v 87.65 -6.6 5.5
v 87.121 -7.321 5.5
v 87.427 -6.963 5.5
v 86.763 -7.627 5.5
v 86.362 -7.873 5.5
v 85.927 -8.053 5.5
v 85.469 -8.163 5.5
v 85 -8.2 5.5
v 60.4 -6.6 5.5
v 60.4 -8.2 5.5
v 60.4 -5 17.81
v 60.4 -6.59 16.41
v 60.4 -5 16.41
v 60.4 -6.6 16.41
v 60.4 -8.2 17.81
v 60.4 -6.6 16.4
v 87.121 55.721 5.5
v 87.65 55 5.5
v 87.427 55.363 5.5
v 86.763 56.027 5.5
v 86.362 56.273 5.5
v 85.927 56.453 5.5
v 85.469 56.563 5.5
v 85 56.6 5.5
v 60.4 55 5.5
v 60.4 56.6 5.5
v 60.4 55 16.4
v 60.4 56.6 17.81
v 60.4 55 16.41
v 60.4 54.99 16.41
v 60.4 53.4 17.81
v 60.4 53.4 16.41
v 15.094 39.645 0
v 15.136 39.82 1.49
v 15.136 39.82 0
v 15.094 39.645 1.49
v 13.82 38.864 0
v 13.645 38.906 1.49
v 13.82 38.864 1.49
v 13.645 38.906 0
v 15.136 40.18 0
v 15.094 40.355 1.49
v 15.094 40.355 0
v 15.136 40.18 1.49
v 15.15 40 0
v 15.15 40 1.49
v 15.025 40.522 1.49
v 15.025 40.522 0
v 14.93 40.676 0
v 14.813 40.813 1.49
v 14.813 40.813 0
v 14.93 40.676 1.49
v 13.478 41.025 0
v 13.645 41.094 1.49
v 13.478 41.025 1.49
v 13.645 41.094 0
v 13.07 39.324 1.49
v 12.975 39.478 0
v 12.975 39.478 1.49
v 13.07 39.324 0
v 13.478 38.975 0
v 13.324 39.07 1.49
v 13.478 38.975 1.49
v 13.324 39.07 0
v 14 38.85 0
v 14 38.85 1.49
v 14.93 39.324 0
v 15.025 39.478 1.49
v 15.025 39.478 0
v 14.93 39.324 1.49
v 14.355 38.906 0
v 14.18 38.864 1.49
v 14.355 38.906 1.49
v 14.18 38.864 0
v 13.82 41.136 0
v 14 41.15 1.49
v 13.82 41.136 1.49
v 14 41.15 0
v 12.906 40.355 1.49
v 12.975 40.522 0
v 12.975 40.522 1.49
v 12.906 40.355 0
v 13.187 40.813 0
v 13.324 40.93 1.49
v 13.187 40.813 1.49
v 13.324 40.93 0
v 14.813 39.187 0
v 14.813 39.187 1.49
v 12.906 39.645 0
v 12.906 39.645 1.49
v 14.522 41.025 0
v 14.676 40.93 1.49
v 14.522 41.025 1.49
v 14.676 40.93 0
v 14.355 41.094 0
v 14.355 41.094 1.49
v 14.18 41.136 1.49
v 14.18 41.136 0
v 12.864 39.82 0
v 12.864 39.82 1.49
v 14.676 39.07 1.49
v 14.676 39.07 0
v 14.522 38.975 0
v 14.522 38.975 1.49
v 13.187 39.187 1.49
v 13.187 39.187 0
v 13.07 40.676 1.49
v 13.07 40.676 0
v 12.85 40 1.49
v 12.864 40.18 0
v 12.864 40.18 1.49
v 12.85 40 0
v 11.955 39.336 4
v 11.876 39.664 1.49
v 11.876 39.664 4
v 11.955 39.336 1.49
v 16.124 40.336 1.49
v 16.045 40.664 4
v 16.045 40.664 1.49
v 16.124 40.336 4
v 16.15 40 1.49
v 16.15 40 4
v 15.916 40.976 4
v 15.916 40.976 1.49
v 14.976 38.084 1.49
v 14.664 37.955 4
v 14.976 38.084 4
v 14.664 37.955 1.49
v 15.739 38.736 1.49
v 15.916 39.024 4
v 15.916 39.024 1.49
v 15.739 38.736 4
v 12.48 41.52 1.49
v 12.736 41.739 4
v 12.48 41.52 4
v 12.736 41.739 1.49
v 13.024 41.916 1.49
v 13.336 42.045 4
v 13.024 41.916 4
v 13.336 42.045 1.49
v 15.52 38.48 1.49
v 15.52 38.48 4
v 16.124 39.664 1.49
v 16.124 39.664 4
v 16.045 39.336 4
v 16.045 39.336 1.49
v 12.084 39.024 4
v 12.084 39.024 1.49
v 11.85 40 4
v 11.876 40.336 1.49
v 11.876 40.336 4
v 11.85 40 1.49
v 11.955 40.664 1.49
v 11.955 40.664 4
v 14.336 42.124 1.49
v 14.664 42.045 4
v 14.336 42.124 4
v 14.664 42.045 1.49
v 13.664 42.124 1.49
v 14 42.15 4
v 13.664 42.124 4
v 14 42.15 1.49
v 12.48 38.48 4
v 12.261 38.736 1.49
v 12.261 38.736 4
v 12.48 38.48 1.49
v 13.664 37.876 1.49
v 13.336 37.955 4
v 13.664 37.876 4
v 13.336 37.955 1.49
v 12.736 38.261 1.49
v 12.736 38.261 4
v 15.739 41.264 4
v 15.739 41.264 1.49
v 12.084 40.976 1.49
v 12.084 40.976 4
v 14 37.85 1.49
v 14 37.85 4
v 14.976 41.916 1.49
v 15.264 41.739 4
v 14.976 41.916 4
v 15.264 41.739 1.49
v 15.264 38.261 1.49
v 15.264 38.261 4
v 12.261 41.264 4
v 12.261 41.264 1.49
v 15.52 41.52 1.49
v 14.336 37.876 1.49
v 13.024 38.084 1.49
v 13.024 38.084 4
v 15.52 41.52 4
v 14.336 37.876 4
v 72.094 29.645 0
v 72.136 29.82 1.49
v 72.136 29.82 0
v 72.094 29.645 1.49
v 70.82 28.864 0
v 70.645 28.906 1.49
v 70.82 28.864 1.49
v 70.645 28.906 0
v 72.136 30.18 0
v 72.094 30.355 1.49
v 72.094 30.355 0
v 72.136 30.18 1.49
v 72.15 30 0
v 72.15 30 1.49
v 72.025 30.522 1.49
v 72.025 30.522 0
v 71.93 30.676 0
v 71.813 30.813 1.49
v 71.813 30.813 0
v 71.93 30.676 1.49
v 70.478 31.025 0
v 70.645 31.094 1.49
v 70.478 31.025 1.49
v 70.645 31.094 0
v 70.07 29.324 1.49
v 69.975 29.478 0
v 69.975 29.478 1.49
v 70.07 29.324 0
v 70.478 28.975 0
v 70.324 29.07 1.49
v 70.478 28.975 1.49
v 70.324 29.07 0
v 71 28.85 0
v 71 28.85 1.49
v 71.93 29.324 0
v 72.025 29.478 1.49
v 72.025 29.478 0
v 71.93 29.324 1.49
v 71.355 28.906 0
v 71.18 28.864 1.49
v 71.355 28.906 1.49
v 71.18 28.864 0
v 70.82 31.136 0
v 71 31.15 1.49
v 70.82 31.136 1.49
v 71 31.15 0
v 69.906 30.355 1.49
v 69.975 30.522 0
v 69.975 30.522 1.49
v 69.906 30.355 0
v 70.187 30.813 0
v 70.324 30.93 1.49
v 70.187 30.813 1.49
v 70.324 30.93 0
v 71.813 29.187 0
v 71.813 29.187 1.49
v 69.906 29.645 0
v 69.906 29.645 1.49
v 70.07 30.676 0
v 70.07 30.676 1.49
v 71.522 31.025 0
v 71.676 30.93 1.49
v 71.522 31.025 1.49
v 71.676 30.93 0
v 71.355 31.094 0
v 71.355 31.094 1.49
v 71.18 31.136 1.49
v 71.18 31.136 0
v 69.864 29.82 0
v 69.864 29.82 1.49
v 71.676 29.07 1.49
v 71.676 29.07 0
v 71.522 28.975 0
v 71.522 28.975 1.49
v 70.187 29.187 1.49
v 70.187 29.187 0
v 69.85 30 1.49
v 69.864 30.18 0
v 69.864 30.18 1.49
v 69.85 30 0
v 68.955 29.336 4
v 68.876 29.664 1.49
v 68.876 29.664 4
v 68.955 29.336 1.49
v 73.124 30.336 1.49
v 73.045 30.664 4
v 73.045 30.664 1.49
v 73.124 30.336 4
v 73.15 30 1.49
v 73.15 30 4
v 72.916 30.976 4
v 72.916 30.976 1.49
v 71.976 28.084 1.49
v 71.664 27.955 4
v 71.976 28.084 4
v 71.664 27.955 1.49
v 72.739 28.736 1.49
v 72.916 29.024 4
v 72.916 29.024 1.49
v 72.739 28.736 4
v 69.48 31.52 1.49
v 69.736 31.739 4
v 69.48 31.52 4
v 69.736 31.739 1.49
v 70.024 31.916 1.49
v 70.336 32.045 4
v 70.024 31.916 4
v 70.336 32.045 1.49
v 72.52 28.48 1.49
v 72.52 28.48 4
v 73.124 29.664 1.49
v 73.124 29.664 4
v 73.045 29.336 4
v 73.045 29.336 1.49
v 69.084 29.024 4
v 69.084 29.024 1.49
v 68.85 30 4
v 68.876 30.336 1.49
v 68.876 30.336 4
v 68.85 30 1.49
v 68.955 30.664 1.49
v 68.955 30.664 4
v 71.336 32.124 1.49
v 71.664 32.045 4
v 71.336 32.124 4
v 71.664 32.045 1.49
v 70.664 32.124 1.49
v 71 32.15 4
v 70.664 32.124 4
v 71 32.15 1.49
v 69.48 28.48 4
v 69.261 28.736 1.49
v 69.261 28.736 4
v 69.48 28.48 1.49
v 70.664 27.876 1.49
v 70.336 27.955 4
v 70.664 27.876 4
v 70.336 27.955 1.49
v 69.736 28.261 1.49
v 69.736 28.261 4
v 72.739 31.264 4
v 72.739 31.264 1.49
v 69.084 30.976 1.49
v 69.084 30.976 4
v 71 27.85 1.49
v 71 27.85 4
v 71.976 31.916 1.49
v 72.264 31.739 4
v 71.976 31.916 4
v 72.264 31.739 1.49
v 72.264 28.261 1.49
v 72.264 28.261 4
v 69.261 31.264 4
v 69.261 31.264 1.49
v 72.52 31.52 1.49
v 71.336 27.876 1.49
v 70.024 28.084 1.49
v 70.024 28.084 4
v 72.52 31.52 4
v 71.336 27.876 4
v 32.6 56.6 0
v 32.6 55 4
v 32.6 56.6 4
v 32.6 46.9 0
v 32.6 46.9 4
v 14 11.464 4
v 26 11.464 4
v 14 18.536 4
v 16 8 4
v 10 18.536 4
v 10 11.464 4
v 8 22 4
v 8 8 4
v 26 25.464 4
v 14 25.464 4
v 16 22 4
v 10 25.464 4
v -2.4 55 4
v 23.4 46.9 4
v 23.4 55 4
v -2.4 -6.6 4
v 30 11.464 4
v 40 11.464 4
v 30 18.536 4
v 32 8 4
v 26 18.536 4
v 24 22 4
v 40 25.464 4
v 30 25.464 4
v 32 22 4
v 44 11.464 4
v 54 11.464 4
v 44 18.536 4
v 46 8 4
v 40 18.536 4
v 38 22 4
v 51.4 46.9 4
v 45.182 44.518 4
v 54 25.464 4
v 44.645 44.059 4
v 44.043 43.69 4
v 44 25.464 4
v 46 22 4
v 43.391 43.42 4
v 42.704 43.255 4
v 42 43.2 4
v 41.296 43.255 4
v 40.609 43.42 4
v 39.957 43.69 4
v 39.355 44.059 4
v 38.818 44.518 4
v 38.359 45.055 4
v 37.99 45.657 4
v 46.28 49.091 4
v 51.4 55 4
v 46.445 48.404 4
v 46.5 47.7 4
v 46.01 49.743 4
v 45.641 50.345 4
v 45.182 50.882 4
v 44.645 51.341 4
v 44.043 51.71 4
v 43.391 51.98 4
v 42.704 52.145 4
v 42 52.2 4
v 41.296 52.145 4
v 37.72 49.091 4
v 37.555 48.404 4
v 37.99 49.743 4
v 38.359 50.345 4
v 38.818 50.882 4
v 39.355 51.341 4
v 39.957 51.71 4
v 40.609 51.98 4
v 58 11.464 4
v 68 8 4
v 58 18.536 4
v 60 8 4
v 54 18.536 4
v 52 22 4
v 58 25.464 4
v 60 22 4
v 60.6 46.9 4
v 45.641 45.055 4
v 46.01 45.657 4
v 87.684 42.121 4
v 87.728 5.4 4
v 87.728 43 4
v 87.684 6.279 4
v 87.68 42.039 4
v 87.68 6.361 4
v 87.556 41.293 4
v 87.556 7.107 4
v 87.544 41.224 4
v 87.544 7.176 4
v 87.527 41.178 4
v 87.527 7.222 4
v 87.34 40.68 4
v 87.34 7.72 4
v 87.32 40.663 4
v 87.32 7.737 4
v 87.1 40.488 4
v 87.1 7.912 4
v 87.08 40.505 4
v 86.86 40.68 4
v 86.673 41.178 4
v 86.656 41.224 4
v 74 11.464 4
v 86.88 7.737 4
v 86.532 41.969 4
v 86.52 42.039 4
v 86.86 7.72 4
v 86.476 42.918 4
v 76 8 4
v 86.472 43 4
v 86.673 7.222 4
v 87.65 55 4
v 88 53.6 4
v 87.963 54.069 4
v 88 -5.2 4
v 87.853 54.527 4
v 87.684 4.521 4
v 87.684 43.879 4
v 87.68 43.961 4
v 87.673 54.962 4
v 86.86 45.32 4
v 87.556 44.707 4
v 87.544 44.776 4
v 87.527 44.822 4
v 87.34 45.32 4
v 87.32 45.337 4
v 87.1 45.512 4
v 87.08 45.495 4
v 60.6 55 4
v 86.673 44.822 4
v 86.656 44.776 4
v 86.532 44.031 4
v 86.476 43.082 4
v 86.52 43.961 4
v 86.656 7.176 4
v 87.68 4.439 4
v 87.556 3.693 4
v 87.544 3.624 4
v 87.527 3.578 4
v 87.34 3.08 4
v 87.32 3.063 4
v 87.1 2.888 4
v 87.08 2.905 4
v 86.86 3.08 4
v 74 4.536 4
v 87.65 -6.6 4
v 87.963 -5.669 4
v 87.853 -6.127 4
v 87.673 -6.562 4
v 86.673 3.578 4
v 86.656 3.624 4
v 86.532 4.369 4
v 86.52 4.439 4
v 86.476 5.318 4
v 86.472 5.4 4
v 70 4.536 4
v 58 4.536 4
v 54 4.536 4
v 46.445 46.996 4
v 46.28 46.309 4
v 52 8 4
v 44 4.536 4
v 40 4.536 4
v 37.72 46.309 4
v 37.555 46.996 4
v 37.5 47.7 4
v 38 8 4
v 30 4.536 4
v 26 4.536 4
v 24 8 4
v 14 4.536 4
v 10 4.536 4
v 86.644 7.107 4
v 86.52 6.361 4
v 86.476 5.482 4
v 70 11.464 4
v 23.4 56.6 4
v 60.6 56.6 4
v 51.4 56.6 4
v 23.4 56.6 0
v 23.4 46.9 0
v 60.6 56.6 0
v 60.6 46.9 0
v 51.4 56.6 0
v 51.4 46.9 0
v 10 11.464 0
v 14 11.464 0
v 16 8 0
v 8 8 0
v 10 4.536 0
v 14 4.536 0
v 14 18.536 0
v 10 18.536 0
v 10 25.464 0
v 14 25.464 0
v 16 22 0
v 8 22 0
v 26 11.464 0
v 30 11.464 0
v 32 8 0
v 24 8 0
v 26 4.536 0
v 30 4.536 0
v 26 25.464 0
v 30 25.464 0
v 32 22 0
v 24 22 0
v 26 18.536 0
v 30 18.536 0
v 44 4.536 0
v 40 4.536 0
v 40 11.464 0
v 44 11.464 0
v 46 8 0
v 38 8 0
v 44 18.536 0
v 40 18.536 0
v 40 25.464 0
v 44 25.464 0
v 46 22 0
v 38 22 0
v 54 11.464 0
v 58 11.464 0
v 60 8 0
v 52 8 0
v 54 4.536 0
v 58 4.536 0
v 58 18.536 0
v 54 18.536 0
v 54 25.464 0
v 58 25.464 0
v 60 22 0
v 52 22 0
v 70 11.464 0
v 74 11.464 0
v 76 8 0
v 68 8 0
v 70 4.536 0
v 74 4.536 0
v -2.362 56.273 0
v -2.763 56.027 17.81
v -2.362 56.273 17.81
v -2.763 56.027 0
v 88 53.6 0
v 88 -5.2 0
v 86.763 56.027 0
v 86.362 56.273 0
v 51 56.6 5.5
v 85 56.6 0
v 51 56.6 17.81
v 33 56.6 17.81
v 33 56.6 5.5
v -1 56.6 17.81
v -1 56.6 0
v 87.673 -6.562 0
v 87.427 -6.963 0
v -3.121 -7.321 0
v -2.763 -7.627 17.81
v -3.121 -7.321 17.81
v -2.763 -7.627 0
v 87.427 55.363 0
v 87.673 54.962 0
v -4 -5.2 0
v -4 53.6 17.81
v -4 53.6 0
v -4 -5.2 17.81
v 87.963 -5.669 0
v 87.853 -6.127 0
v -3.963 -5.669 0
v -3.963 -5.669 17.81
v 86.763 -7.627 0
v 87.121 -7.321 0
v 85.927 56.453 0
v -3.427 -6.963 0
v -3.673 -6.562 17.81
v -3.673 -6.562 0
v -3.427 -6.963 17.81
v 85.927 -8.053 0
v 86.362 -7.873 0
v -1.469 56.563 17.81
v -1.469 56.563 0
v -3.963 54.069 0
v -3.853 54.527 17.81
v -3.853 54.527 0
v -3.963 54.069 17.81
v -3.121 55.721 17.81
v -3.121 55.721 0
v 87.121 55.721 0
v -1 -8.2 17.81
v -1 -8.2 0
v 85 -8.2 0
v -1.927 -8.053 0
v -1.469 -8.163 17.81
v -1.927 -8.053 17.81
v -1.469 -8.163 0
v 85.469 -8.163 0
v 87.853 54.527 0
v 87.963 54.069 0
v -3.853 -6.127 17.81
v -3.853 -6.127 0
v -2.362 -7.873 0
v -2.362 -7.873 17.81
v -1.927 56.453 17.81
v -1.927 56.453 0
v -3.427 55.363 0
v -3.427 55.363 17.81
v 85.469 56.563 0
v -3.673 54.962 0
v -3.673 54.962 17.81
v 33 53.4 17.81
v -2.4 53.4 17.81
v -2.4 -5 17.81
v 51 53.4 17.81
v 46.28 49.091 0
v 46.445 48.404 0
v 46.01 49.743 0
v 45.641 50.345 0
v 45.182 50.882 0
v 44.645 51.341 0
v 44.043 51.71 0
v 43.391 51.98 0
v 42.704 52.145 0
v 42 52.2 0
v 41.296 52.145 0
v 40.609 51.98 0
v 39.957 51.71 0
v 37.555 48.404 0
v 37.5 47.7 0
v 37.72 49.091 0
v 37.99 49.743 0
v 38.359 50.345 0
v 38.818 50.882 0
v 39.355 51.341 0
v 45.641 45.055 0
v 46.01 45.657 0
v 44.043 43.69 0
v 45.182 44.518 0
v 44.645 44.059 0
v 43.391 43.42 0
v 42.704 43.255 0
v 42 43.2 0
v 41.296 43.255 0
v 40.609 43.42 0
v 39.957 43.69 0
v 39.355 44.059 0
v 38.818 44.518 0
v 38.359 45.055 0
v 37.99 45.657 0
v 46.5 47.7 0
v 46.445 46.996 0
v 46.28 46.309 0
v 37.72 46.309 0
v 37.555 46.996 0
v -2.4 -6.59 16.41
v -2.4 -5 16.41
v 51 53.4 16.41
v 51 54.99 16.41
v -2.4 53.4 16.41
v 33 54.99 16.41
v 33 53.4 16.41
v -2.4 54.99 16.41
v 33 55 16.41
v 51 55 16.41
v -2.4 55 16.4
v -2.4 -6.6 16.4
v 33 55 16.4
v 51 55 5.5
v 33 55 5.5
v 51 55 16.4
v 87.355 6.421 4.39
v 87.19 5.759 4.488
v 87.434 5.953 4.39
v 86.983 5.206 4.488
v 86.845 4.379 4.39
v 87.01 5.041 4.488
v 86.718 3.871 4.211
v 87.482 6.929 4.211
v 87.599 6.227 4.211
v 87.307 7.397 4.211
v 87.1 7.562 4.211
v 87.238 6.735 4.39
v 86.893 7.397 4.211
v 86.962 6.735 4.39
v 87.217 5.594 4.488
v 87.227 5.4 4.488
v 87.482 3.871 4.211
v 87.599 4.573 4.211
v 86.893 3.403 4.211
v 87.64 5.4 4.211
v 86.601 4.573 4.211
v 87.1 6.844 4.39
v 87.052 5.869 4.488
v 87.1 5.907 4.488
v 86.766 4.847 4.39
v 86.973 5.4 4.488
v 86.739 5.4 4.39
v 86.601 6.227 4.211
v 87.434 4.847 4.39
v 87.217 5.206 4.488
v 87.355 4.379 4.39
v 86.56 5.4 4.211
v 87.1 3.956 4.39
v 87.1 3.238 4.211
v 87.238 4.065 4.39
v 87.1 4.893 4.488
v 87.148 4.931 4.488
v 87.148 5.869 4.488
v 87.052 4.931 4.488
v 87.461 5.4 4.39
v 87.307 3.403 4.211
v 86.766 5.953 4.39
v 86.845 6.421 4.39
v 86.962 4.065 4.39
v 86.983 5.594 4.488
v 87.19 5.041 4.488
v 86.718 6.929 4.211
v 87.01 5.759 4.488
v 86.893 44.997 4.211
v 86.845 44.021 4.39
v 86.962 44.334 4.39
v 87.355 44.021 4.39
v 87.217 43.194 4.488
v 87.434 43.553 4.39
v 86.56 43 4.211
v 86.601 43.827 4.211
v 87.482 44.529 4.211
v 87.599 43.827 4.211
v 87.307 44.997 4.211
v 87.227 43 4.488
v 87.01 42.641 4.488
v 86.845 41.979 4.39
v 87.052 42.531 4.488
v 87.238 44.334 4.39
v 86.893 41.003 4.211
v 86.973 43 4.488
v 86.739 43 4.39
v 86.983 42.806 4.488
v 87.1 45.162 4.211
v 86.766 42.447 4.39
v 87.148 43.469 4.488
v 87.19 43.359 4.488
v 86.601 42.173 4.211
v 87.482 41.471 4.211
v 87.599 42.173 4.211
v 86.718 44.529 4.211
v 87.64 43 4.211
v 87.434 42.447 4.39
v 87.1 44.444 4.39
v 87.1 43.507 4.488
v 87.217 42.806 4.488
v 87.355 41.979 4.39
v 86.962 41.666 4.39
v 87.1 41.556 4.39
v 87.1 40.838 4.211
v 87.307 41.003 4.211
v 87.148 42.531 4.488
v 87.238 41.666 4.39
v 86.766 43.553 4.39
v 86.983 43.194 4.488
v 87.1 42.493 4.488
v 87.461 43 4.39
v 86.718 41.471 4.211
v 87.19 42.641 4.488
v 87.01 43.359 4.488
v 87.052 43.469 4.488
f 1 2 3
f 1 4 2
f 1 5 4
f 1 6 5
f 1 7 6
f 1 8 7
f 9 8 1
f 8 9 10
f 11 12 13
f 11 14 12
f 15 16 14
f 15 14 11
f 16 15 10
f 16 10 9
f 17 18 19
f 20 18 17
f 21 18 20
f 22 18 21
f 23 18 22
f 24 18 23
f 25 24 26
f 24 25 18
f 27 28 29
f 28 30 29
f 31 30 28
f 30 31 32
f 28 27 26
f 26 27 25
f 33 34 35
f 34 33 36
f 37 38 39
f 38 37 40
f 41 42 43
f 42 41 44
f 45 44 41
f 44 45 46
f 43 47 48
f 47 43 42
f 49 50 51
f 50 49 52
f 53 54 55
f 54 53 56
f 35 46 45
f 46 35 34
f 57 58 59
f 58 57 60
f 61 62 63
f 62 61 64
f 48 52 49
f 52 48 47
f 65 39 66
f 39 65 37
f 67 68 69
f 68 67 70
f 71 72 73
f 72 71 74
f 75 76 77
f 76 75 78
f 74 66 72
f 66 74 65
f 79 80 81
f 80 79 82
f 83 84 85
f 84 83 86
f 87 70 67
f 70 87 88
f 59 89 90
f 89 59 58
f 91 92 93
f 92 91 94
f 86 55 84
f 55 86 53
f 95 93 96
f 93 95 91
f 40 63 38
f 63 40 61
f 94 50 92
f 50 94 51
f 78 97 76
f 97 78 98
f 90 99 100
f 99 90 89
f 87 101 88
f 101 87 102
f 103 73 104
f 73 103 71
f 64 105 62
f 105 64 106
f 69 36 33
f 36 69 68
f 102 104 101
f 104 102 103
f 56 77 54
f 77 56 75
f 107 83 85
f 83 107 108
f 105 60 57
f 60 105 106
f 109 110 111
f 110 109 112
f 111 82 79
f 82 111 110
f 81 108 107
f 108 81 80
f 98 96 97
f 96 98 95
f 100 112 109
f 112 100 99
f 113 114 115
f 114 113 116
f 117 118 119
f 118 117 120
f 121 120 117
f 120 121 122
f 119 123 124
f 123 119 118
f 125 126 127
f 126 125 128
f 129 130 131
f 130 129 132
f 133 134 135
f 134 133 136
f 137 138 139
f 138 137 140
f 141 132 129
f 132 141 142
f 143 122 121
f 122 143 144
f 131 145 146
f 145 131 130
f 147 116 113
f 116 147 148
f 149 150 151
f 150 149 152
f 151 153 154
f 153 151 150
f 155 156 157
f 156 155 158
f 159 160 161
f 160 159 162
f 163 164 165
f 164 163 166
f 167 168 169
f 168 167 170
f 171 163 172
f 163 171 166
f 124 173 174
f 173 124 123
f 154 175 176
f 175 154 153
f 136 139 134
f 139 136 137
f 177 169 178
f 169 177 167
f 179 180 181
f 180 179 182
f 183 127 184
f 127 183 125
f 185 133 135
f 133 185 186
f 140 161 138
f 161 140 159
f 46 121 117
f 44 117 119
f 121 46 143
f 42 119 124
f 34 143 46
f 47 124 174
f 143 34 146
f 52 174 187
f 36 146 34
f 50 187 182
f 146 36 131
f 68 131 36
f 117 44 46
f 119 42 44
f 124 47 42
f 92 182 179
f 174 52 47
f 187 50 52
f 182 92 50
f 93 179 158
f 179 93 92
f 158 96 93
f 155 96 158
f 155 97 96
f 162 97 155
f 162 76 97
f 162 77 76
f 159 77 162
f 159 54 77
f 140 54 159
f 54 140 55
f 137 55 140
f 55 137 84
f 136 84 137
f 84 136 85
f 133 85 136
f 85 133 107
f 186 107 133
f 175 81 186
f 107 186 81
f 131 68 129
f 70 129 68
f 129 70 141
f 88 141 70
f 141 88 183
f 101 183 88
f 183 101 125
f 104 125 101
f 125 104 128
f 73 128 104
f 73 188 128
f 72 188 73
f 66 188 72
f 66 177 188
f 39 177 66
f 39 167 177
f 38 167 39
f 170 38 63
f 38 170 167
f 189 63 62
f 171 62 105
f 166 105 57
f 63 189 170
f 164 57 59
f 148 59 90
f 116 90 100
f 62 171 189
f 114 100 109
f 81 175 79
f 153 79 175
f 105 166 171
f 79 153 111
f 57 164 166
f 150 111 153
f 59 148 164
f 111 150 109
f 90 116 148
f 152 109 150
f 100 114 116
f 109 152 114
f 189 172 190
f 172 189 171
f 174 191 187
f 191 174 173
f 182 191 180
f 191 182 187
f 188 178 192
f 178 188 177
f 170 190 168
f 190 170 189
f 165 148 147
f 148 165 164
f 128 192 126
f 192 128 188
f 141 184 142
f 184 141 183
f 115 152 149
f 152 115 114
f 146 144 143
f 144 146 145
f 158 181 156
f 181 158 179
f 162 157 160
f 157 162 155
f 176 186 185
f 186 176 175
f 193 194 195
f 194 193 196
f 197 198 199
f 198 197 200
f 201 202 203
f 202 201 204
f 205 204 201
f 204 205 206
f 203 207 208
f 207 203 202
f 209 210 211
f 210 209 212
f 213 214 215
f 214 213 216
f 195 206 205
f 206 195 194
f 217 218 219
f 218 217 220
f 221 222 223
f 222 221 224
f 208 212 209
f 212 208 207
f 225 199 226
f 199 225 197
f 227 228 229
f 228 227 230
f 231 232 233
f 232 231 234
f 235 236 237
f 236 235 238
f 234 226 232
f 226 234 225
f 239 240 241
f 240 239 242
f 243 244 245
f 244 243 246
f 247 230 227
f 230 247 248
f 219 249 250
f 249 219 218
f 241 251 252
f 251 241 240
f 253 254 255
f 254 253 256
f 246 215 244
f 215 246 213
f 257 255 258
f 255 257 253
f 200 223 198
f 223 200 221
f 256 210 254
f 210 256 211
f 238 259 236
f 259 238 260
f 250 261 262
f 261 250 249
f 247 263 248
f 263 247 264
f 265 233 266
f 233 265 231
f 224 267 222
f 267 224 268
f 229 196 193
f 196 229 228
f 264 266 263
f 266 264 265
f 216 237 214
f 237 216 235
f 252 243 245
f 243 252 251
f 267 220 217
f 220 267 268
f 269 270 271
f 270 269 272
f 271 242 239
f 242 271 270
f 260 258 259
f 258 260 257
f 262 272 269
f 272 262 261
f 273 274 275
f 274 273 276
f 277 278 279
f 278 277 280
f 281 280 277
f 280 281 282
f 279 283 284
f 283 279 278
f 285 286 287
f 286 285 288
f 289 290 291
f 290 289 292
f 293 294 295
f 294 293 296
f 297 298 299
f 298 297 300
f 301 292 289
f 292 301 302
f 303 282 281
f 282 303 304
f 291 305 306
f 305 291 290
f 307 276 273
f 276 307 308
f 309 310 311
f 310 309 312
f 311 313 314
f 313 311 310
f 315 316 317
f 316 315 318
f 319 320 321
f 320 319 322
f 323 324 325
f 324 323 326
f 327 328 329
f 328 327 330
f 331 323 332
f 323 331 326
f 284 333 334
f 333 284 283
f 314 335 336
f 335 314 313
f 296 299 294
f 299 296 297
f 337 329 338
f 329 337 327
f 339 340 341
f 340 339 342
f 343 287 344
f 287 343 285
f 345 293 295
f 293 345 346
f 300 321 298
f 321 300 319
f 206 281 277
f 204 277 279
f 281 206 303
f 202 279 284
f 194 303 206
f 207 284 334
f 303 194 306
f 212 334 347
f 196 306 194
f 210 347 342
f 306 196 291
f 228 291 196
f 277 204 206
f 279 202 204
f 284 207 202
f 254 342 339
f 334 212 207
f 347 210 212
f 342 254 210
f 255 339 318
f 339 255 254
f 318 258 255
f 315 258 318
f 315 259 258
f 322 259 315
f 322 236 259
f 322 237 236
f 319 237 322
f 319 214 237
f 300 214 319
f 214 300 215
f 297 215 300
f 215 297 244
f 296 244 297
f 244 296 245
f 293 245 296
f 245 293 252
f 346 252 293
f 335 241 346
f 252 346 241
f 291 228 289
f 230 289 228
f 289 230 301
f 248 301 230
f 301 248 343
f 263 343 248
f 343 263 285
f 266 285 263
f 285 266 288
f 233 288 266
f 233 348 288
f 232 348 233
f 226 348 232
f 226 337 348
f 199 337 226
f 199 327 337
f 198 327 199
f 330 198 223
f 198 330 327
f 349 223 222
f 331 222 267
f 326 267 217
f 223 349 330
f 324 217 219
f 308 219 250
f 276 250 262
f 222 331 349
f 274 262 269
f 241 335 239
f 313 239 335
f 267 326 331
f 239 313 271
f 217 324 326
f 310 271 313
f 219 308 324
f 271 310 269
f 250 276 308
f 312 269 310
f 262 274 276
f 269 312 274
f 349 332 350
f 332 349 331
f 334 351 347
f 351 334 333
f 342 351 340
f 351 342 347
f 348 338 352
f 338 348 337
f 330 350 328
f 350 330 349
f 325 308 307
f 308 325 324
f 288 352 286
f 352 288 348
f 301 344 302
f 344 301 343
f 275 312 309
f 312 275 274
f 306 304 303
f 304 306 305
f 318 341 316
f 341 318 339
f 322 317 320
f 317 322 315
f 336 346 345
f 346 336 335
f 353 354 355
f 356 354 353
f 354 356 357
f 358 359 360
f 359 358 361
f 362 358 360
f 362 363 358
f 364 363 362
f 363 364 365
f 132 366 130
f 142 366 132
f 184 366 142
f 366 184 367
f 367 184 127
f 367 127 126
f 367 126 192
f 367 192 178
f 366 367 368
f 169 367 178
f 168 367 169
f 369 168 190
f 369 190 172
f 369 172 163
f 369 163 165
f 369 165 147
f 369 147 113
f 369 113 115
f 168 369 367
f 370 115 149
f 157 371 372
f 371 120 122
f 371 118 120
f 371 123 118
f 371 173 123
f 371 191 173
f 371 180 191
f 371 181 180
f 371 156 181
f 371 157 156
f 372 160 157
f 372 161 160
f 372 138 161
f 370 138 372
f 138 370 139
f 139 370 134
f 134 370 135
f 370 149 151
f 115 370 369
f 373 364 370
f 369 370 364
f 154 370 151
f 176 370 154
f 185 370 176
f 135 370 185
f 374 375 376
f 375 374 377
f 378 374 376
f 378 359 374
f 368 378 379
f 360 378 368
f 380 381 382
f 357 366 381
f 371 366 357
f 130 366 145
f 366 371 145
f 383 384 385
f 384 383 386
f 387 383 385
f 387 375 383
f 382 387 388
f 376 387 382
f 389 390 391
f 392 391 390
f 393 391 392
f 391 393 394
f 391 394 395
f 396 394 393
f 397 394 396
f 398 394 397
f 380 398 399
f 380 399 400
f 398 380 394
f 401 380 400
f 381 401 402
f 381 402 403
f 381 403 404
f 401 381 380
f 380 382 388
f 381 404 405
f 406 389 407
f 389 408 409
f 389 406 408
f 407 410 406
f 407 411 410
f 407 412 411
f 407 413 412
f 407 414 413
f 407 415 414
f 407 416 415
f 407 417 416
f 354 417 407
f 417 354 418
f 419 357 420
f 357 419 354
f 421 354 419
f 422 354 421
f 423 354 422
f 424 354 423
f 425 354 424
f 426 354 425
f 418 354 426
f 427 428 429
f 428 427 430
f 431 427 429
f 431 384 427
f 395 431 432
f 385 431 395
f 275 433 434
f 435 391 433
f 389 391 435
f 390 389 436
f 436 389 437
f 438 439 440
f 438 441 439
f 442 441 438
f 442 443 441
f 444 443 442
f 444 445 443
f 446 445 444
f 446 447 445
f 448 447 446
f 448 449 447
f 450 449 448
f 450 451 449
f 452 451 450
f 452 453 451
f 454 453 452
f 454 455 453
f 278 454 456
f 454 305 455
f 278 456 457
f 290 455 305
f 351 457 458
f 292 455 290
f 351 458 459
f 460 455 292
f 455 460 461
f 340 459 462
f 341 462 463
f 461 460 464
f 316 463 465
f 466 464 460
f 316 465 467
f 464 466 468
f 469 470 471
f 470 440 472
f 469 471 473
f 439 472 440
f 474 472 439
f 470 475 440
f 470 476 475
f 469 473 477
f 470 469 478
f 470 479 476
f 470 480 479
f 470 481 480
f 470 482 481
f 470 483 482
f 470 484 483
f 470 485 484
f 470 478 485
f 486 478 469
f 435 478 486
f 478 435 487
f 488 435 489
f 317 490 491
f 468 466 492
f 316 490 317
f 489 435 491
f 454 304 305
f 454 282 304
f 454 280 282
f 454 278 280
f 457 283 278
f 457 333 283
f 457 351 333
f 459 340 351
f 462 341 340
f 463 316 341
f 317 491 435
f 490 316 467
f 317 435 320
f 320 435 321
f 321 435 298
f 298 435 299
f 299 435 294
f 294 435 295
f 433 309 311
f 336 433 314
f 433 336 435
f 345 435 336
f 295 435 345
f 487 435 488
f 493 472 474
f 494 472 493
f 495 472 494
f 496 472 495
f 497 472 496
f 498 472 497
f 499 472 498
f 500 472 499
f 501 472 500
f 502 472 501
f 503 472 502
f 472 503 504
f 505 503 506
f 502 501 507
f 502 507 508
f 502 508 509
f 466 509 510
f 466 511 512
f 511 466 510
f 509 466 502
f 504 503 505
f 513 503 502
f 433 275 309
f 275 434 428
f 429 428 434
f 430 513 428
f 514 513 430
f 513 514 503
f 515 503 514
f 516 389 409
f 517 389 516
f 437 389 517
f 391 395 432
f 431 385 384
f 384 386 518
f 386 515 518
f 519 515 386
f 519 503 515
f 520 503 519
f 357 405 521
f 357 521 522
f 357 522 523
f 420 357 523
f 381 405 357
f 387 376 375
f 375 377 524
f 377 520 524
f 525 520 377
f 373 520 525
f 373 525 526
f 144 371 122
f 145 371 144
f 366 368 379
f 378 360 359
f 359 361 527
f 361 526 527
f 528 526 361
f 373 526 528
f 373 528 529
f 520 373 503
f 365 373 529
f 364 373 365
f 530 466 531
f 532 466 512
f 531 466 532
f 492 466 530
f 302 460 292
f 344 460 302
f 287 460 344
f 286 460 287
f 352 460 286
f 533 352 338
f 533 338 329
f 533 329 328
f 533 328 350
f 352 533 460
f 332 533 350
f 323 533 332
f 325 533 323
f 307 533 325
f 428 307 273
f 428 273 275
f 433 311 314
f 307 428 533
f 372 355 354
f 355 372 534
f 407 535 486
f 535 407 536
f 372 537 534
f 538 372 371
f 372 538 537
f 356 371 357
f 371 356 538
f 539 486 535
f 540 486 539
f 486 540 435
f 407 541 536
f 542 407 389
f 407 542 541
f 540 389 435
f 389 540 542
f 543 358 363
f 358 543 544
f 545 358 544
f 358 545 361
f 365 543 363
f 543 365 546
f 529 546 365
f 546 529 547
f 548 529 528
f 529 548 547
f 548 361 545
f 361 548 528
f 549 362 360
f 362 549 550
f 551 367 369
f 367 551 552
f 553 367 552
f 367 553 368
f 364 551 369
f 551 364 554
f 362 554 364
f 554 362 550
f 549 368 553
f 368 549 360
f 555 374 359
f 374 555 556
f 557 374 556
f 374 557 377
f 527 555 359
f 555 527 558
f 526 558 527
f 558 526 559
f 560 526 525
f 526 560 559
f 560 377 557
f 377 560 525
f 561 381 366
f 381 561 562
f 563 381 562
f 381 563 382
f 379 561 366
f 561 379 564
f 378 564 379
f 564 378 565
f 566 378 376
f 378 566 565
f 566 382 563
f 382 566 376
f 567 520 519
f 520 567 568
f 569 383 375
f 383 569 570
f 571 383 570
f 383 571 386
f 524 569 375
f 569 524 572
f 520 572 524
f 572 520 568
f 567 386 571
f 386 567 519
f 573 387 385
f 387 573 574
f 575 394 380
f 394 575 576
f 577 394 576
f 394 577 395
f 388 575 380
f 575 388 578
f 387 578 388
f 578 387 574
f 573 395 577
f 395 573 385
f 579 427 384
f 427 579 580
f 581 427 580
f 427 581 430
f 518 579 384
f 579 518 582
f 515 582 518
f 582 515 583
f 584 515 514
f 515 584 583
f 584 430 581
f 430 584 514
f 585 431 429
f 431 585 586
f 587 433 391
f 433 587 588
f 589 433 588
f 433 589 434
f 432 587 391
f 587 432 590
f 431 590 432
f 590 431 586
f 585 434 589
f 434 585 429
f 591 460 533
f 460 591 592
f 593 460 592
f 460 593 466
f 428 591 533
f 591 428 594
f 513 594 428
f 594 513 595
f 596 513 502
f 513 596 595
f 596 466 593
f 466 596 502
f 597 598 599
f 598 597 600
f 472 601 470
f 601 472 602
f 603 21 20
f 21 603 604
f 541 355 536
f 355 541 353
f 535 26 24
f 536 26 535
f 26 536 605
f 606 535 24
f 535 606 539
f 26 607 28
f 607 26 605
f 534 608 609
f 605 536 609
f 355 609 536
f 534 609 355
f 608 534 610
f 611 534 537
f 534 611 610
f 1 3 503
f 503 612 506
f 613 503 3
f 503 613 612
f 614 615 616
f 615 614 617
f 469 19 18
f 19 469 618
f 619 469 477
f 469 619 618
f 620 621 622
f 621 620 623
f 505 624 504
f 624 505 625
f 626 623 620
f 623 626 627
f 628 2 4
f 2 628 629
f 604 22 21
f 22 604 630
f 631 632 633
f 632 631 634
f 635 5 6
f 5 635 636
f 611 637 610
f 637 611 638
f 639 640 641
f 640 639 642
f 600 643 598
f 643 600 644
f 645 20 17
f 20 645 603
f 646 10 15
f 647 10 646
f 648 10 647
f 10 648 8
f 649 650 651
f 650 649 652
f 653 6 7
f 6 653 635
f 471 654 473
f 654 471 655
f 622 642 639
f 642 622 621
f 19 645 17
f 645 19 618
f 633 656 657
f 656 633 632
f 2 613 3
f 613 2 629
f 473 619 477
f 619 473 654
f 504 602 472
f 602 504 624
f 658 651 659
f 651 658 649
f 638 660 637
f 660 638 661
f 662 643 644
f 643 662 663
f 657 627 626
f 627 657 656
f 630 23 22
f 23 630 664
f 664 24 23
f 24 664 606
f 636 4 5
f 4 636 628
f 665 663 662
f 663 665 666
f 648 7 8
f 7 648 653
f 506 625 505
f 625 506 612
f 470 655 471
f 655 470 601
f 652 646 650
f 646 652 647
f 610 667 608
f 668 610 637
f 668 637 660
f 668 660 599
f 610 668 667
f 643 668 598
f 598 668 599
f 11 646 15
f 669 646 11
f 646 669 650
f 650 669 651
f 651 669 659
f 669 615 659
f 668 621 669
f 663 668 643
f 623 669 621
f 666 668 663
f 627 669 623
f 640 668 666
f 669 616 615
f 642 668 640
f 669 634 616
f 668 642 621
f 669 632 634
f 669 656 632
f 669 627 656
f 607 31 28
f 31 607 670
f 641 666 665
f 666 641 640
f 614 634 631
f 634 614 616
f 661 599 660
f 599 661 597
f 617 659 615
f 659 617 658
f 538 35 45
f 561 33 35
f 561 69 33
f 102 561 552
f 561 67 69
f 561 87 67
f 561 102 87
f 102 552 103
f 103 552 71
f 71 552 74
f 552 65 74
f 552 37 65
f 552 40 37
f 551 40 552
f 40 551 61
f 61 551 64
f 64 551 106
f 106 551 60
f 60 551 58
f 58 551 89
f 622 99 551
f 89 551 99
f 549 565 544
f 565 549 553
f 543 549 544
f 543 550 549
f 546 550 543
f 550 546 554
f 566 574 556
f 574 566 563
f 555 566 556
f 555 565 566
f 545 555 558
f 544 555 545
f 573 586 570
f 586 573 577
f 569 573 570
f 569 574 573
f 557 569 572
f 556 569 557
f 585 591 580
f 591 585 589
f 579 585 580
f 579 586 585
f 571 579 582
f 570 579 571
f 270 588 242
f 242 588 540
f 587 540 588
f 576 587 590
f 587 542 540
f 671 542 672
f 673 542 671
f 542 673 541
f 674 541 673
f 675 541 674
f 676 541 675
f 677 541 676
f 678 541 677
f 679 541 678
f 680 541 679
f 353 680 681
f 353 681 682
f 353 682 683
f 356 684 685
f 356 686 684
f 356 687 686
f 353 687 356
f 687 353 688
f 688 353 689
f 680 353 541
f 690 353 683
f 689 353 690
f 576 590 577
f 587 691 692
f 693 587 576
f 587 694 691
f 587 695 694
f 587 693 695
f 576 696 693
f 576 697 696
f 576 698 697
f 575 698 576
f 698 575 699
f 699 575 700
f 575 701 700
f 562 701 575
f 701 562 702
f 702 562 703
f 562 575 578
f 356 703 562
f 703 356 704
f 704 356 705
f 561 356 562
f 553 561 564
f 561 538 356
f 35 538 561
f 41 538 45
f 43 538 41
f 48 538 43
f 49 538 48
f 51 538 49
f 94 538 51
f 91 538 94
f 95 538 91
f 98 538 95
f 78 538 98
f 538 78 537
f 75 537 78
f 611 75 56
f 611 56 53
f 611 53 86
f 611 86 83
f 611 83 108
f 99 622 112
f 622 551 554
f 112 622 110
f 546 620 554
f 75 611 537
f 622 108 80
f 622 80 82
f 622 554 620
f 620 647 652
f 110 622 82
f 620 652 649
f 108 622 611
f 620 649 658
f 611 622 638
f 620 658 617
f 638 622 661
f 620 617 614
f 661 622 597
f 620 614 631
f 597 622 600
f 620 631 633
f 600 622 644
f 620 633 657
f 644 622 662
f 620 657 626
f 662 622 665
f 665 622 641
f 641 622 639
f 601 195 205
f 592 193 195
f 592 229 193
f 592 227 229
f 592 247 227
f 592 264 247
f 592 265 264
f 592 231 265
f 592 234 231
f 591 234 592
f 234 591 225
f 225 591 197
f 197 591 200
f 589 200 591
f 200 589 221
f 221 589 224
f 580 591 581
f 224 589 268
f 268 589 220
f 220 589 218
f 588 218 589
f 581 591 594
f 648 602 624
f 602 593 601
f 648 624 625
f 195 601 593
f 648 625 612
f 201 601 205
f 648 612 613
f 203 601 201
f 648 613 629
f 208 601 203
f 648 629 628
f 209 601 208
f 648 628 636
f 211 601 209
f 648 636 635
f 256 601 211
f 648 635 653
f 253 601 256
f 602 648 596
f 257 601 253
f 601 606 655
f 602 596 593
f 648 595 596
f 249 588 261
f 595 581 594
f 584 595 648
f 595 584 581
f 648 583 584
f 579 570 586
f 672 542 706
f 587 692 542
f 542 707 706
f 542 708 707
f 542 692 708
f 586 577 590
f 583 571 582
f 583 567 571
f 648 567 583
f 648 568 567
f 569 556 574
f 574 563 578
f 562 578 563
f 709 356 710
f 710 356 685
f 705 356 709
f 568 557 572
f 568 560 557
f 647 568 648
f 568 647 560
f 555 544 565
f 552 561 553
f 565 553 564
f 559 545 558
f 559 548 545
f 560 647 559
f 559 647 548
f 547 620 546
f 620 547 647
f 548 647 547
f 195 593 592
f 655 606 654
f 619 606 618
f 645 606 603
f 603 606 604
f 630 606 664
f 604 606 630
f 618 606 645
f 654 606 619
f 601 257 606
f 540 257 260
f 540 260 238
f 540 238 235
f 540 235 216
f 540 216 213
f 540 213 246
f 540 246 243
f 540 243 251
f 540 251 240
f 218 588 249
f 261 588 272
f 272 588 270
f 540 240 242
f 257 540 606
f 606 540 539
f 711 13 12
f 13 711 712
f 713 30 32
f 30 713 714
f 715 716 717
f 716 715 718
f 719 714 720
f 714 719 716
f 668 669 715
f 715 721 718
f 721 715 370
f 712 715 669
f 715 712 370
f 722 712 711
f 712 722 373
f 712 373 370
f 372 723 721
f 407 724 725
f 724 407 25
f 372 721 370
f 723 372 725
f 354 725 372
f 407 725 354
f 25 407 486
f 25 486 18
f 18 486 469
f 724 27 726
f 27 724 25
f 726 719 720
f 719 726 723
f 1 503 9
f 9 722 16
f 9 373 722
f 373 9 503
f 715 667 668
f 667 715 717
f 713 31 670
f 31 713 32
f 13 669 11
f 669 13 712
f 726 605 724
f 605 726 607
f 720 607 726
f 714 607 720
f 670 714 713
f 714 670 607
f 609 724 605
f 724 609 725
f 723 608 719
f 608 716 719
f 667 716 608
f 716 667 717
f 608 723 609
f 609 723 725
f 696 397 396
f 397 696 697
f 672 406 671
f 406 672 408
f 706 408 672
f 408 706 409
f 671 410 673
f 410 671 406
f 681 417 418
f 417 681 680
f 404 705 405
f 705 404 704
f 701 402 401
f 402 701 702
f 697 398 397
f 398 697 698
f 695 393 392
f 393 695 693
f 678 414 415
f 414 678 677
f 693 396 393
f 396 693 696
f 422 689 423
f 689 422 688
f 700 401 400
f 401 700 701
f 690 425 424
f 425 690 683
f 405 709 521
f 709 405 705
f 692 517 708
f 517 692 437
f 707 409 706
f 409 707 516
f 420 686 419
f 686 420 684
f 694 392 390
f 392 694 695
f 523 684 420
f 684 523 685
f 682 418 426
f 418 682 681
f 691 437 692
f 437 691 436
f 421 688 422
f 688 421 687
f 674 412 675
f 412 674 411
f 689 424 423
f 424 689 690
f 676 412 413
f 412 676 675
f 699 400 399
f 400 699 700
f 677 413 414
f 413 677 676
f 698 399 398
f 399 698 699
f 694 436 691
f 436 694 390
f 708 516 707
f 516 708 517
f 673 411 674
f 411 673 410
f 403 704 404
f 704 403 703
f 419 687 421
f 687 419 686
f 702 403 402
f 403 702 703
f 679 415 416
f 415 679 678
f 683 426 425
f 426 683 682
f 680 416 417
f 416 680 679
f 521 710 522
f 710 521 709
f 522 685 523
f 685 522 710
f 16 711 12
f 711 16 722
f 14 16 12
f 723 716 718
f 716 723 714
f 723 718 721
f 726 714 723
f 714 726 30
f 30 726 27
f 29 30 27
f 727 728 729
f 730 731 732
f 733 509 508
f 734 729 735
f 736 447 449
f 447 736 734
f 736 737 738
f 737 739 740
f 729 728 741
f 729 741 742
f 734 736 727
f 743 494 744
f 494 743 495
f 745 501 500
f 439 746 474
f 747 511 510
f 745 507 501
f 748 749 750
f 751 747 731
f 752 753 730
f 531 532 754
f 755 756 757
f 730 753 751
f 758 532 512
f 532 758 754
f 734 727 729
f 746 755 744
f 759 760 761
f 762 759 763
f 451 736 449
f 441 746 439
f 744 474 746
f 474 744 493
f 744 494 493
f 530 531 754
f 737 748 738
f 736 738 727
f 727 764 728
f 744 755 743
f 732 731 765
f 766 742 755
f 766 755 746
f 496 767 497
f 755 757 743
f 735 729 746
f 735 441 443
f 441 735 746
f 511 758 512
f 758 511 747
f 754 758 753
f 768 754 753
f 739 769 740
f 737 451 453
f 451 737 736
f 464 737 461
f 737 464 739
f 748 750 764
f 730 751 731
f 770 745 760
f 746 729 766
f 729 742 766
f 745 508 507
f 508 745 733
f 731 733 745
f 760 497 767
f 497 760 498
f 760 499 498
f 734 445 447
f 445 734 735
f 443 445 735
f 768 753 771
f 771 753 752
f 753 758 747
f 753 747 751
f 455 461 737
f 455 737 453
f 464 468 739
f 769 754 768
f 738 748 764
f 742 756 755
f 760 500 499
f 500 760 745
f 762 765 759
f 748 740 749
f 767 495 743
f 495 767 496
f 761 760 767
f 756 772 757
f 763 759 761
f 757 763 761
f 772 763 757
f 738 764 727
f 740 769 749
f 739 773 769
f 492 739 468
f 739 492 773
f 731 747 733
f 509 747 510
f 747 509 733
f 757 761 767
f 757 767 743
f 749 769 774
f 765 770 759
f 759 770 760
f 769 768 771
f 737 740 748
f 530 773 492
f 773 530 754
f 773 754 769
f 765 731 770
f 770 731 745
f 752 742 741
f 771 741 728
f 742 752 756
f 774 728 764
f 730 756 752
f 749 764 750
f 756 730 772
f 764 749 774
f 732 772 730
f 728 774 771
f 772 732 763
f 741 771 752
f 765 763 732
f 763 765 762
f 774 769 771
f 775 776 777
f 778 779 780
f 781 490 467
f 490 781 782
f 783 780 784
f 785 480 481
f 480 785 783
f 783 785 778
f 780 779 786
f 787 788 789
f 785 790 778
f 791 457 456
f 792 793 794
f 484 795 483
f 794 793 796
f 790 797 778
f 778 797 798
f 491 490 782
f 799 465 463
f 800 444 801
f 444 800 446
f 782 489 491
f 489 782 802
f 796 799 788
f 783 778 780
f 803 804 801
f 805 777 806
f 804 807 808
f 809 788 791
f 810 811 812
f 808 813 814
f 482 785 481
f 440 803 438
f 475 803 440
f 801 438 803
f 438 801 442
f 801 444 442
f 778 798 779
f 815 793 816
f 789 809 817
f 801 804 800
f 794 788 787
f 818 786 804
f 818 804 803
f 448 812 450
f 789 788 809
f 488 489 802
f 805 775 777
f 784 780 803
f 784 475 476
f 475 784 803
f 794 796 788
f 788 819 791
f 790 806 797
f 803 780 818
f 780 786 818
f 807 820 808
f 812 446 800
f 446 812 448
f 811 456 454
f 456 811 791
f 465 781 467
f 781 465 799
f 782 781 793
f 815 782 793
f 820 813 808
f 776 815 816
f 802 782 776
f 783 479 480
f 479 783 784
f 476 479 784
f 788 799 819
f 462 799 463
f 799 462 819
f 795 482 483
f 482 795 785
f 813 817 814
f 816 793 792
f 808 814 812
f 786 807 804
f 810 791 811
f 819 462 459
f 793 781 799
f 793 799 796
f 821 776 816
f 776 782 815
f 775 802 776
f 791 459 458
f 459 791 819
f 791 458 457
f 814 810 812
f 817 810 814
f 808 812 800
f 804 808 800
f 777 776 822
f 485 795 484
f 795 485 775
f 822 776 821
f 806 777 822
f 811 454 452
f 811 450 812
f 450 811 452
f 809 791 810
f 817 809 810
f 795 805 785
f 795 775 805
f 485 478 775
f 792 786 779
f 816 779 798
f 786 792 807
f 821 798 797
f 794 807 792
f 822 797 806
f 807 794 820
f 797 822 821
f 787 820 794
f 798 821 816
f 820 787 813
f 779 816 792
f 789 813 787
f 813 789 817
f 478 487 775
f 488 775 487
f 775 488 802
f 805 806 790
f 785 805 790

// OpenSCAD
// =====================================================================
//  HEXA STAGE  CPZ 背面バッテリーﾄﾚｲ v0.1.2  (CIO SMARTCOBY SLIM 5000mAh 用)
//  CPZ の背面に M2 ﾈｼﾞ2本で付けるﾄﾚｲ。ﾊﾞｯﾃﾘｰはﾎﾟｰﾄ側の端から横に差し込む。
//  ｶﾒﾗは隠れる (了承済み)。上の USB-C ｷｬｯﾌﾟと短い C-C ｹｰﾌﾞﾙでつなぐ。
//
//  座標: 背面を正面に見て u = 左→右 (x)、v = 下→上 (y、本体の下端 0)、
//        w = 背面から外向き (z、背面 0)。このまま印刷 (背面に当たる面が下)
// =====================================================================
part = "print";        // "print" / "fit"
$fn = 40;
eps = 0.01;

// ---- 本体 (CPZ の背面、公式 外形図より)
BW = 84.0;  BH = 54.0;
inserts = [[14, 40], [71, 30]];        // 背面の M2 ｲﾝｻｰﾄ (背面から見て)
camera  = [42, 47.7];
// 上のｷｬｯﾌﾟの耳 (M2) が背面上端に来る所。ここは床を抜いて、ﾈｼﾞ頭はﾊﾞｯﾃﾘｰの下に入れる
cap_ears = [[28, 50.9], [56, 50.9]];   // ｷｬｯﾌﾟの耳ﾈｼﾞ (背面から見ても左右対称)

// ---- ﾊﾞｯﾃﾘｰ (価格.com の仕様: 60.8 x 88 x 12.11)
LB = 88.0;  HB = 60.8;  TB = 12.11;
fit = 0.4;                             // 片側のすき間 (PETG の縮みも見て 0.4)
PL = LB + 2*fit;  PH = HB + 2*fit;  PT = TB + 0.3;

// ---- ﾄﾚｲ
floor_t = 4.0;          // 背面からﾊﾞｯﾃﾘｰまで (耳ﾈｼﾞの頭 約3.9mm を逃がす)
wall    = 1.6;
lip     = 1.6;          // ﾊﾞｯﾃﾘｰの表面にかぶさる縁の幅 (長辺だけ。表示は隠さない)
lip_t   = 1.4;
open_end = "right";     // ﾎﾟｰﾄ側 = 差し込み口。背面から見て "right" / "left"
pocket_top = 55.0;      // ﾎﾟｹｯﾄ上端 (v)。ｷｬｯﾌﾟの USB-C ﾌﾟﾗｸﾞ (下端 約56.2) に当たらない高さ
plug_notch = [33, 51];  // 上の壁をﾌﾟﾗｸﾞの分だけ切る (u の範囲)
button_cut = 26;        // 差し込み口側の長辺の壁を切る長さ (ﾎﾞﾀﾝの奥の縁が端から 22mm、上下両方)
snap = 0.5;             // 差し込み口の抜け止めの出っ張り

pu0 = BW/2 - PL/2;  pu1 = BW/2 + PL/2;         // ﾎﾟｹｯﾄ (u)
pv1 = pocket_top;   pv0 = pv1 - PH;            // ﾎﾟｹｯﾄ (v)
pw0 = floor_t;      pw1 = floor_t + PT;        // ﾎﾟｹｯﾄ (w)
H   = pw1 + lip_t;

ou0 = pu0 - wall;  ou1 = pu1 + wall;
ov0 = pv0 - wall;  ov1 = pv1 + wall;

module rbox(x0, x1, y0, y1, z0, z1, r) {
  translate([0, 0, z0]) hull() for (x = [x0 + r, x1 - r], y = [y0 + r, y1 - r])
    translate([x, y, 0]) cylinder(r = r, h = z1 - z0);
}

module tray() {
  difference() {
    rbox(ou0, ou1, ov0, ov1, 0, H, 3);
    // ﾊﾞｯﾃﾘｰのﾎﾟｹｯﾄ (差し込み口側は端まで抜く)
    xo0 = open_end == "left"  ? ou0 - 1 : pu0;
    xo1 = open_end == "right" ? ou1 + 1 : pu1;
    translate([xo0, pv0, pw0]) cube([xo1 - xo0, PH, PT]);
    // 表側: 長辺の縁 (lip) だけ残して開ける (残量表示が見える)
    translate([xo0, pv0 + lip, pw1 - eps]) cube([xo1 - xo0, PH - 2*lip, lip_t + 1]);
    // 上の壁の切り欠き (ｷｬｯﾌﾟの USB-C ﾌﾟﾗｸﾞ)
    translate([plug_notch[0], pv1 - lip - 0.05, pw0 + 1.5]) cube([plug_notch[1] - plug_notch[0], wall + lip + 1, H]);
    // ﾎﾞﾀﾝ用: 差し込み口側の長辺の壁 (上下とも)
    bu0 = open_end == "right" ? pu1 - button_cut : ou0 - 1;
    bu1 = open_end == "right" ? ou1 + 1 : pu0 + button_cut;
    for (vv = [[ov0 - 1, pv0 + lip + 0.05], [pv1 - lip - 0.05, ov1 + 1]])   // 縁ごと切る (浮いた縁を残さない)
      translate([bu0, vv[0], pw0 + 1.5]) cube([bu1 - bu0, vv[1] - vv[0], H]);
    // 床: 本体の M2 ｲﾝｻｰﾄへのﾈｼﾞ (ﾊﾞｯﾃﾘｰ側から皿もみ、ﾈｼﾞ下の床 1.5mm)
    for (p = inserts) translate([p[0], p[1], -eps]) {
      cylinder(d = 2.3, h = floor_t + 1);
      translate([0, 0, 1.5]) cylinder(d = 4.3, h = floor_t);
    }
    // 床: ｷｬｯﾌﾟの耳とﾈｼﾞ頭の逃げ
    for (p = cap_ears) translate([p[0] - 4.6, p[1] - 4, -eps]) cube([9.2, 20, floor_t + eps]);
    // 床: ｶﾒﾗの逃げ (ﾚﾝｽﾞが少し出ていても当たらないように)
    translate([camera[0], camera[1], -eps]) cylinder(d = 9, h = floor_t + eps);
    // 床の肉抜き (軽く、熱がこもらないように) — ﾈｼﾞの周りは残す
    for (u = [12, 28, 42, 56, 72]) for (v = [8, 22])
      if (norm([u - inserts[0][0], v - inserts[0][1]]) > 9 && norm([u - inserts[1][0], v - inserts[1][1]]) > 9)
        translate([u, v, -eps]) cylinder(d = 8, h = floor_t + eps, $fn = 6);
  }
  // 縁の下の 45° のﾘﾌﾞ (長辺の縁を支える)
  for (side = [0, 1]) {
    y = side == 0 ? pv0 : pv1;
    s = side == 0 ? 1 : -1;
    lu0 = open_end == "right" ? pu0 : pu0 + button_cut;
    lu1 = open_end == "right" ? pu1 - button_cut : pu1;
    translate([lu0, y, pw1]) rotate([0, 90, 0]) linear_extrude(lu1 - lu0)
      polygon([[0, 0], [0, s * 0.01], [0.01, 0]]);   // (形だけ。縁 1.6 は 45° 以内なので支え不要)
  }
  // 差し込み口の抜け止め (ﾎﾟｹｯﾄの床に小さな山。ﾊﾞｯﾃﾘｰを押し込むと乗り越える)
  // 山はﾊﾞｯﾃﾘｰが奥まで入った時の端より外 (ﾎﾟｹｯﾄの外の床) に置く。中に置くとﾊﾞｯﾃﾘｰが乗り上げて入りきらない
  su = open_end == "right" ? pu1 + 0.7 : pu0 - 0.7;
  for (v = [pv0 + 12, pv1 - 12]) translate([su, v, pw0 - 0.15]) scale([1, 4, 1]) sphere(r = snap + 0.15, $fn = 16);
}

module dummy() {
  color([0.55, 0.57, 0.6]) translate([0, 0, -22.1]) cube([BW, BH, 22.1]);
  color([0.12, 0.12, 0.13]) translate([BW/2 - LB/2, pv1 - fit - HB, pw0]) cube([LB, HB, TB]);
  // ｷｬｯﾌﾟの USB-C ﾌﾟﾗｸﾞ (目安)
  color("dimgray") translate([42 - 6.3, BH + 2.2, 0.3]) cube([12.6, 7, 22]);
}

if (part == "print") tray();
else { dummy(); color("whitesmoke", 0.9) tray(); }
